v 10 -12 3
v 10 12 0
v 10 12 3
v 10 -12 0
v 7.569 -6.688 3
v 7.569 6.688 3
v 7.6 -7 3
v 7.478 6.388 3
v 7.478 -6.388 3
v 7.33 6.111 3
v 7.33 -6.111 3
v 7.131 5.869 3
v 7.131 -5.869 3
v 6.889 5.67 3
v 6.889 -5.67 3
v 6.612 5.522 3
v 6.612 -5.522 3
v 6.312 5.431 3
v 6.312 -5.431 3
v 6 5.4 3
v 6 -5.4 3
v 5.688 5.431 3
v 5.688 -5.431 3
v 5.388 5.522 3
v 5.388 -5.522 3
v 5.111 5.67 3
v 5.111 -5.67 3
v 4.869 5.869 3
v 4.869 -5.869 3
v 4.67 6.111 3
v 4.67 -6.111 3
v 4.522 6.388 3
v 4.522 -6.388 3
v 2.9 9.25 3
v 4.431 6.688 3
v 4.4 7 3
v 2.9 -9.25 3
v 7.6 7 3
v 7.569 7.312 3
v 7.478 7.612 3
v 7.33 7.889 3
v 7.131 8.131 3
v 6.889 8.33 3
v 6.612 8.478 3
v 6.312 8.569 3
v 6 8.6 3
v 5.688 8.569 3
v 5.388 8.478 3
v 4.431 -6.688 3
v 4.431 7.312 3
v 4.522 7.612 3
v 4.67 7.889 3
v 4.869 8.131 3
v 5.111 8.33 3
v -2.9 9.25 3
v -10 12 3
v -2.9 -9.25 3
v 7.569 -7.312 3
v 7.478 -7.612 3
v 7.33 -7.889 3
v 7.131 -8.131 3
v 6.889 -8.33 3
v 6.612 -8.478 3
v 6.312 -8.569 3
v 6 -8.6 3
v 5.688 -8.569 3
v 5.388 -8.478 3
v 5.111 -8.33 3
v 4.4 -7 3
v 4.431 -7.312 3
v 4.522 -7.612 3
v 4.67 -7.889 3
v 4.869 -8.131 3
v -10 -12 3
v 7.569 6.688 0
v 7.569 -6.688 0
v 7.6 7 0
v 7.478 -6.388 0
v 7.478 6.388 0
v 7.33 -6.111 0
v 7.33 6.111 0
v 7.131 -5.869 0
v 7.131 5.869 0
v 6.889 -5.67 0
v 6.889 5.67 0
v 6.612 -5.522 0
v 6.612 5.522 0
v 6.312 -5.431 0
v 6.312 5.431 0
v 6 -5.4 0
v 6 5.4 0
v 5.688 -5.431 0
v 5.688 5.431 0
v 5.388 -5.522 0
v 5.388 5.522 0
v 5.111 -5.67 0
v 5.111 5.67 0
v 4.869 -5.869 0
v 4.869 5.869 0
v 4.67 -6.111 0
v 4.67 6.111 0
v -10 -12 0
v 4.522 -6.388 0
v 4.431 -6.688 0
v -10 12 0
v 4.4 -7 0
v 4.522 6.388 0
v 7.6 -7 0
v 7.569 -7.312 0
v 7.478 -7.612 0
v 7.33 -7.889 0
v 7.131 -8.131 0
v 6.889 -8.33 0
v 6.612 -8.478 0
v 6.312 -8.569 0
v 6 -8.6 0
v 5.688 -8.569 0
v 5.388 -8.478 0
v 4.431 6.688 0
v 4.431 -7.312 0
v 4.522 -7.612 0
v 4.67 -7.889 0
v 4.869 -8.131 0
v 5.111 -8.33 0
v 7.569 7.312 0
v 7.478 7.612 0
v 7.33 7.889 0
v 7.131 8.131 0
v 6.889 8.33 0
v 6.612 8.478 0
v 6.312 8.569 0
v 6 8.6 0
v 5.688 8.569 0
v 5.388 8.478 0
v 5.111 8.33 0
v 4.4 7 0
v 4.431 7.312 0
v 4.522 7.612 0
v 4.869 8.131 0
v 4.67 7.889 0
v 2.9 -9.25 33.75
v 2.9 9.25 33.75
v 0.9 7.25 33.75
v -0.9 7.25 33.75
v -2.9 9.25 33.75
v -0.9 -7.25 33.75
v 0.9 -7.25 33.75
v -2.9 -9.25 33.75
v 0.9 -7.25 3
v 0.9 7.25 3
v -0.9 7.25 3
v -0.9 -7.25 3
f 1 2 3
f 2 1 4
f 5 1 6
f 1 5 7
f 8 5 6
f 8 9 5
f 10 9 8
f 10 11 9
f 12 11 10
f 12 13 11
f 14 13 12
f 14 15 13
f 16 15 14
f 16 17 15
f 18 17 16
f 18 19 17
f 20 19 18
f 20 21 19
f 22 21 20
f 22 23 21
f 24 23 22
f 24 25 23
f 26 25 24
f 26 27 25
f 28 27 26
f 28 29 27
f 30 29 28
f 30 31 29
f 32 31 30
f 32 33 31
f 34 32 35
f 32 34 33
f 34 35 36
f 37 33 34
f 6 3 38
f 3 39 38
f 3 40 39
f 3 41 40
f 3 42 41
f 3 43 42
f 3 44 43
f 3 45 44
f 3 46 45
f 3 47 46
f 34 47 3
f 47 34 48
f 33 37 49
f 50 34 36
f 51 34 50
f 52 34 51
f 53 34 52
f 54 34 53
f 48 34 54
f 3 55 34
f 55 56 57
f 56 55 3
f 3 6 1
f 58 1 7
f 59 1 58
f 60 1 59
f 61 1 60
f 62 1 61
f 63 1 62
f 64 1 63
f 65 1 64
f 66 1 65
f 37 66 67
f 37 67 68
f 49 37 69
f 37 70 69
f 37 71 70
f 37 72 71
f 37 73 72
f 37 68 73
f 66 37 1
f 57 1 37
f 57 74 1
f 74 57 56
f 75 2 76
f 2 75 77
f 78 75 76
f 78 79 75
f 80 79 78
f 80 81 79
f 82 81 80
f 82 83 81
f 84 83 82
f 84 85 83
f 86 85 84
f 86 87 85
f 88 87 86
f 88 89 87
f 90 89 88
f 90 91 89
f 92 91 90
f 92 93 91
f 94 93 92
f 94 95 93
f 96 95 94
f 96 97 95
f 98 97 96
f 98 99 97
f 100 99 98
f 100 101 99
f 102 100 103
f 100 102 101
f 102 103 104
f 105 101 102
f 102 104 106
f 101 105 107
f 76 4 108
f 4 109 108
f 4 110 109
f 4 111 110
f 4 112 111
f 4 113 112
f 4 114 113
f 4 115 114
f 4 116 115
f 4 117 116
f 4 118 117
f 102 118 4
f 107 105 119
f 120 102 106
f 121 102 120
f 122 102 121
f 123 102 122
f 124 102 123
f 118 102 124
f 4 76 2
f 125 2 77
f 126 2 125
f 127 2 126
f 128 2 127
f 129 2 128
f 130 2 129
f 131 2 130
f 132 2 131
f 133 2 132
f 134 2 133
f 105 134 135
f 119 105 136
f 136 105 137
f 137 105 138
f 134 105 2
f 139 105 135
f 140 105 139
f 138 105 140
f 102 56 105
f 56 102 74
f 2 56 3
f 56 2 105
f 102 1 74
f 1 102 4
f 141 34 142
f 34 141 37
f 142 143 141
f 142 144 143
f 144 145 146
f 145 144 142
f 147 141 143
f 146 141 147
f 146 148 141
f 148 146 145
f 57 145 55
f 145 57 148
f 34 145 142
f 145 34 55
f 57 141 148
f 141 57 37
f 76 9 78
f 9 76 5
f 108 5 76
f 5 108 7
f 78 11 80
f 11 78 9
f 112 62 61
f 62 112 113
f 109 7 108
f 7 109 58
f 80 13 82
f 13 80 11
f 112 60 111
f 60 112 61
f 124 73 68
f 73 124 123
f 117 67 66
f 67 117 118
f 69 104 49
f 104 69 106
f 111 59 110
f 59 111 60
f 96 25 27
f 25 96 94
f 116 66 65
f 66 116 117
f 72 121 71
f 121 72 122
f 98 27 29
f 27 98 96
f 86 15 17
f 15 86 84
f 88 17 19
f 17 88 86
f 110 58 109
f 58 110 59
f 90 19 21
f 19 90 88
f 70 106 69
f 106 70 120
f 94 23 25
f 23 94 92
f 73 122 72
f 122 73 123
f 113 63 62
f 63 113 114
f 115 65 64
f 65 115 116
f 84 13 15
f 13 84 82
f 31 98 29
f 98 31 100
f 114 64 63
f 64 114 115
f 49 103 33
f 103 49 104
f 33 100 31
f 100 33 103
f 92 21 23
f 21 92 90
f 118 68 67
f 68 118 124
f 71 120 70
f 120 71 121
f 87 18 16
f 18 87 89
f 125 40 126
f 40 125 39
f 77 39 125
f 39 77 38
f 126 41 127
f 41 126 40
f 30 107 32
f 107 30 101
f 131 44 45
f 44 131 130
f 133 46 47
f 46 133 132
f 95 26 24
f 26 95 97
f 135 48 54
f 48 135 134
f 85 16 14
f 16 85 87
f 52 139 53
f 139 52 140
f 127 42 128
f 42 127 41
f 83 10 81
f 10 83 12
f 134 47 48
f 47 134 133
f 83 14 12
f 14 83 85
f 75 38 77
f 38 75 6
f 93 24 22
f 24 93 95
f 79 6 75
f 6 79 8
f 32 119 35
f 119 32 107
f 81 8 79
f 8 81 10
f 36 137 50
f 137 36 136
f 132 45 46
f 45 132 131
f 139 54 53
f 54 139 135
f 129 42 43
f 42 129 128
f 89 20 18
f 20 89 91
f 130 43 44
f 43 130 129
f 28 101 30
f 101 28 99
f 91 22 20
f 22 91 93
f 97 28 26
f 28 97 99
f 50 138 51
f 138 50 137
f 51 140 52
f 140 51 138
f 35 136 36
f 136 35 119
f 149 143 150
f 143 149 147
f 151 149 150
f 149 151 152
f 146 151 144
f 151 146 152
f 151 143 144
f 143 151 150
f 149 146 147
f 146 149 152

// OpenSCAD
// Holder for an FC-51 IR obstacle sensor at the barrier line (vehicle presence / safety).
// The sensor looks across the lane at bumper height; screw the base to the floor.
pcb_l = 31.5; pcb_w = 14.5; pcb_t = 1.8;
sensor_height = 18;   // centre of the IR LEDs above the floor (bumper height of 1:24 cars)
wall = 2; $fn = 32;

difference() {
    union() {
        translate([-10, -12, 0]) cube([20, 24, 3]);                         // base
        translate([-wall - pcb_t / 2, -pcb_w / 2 - wall, 0])
            cube([pcb_t + 2 * wall, pcb_w + 2 * wall, sensor_height + pcb_l / 2]);
    }
    // vertical slot, LEDs at the top looking sideways
    translate([-pcb_t / 2, -pcb_w / 2, 3]) cube([pcb_t, pcb_w, 60]);
    for (y = [-7, 7]) translate([6, y, -1]) cylinder(d = 3.2, h = 5);
}
